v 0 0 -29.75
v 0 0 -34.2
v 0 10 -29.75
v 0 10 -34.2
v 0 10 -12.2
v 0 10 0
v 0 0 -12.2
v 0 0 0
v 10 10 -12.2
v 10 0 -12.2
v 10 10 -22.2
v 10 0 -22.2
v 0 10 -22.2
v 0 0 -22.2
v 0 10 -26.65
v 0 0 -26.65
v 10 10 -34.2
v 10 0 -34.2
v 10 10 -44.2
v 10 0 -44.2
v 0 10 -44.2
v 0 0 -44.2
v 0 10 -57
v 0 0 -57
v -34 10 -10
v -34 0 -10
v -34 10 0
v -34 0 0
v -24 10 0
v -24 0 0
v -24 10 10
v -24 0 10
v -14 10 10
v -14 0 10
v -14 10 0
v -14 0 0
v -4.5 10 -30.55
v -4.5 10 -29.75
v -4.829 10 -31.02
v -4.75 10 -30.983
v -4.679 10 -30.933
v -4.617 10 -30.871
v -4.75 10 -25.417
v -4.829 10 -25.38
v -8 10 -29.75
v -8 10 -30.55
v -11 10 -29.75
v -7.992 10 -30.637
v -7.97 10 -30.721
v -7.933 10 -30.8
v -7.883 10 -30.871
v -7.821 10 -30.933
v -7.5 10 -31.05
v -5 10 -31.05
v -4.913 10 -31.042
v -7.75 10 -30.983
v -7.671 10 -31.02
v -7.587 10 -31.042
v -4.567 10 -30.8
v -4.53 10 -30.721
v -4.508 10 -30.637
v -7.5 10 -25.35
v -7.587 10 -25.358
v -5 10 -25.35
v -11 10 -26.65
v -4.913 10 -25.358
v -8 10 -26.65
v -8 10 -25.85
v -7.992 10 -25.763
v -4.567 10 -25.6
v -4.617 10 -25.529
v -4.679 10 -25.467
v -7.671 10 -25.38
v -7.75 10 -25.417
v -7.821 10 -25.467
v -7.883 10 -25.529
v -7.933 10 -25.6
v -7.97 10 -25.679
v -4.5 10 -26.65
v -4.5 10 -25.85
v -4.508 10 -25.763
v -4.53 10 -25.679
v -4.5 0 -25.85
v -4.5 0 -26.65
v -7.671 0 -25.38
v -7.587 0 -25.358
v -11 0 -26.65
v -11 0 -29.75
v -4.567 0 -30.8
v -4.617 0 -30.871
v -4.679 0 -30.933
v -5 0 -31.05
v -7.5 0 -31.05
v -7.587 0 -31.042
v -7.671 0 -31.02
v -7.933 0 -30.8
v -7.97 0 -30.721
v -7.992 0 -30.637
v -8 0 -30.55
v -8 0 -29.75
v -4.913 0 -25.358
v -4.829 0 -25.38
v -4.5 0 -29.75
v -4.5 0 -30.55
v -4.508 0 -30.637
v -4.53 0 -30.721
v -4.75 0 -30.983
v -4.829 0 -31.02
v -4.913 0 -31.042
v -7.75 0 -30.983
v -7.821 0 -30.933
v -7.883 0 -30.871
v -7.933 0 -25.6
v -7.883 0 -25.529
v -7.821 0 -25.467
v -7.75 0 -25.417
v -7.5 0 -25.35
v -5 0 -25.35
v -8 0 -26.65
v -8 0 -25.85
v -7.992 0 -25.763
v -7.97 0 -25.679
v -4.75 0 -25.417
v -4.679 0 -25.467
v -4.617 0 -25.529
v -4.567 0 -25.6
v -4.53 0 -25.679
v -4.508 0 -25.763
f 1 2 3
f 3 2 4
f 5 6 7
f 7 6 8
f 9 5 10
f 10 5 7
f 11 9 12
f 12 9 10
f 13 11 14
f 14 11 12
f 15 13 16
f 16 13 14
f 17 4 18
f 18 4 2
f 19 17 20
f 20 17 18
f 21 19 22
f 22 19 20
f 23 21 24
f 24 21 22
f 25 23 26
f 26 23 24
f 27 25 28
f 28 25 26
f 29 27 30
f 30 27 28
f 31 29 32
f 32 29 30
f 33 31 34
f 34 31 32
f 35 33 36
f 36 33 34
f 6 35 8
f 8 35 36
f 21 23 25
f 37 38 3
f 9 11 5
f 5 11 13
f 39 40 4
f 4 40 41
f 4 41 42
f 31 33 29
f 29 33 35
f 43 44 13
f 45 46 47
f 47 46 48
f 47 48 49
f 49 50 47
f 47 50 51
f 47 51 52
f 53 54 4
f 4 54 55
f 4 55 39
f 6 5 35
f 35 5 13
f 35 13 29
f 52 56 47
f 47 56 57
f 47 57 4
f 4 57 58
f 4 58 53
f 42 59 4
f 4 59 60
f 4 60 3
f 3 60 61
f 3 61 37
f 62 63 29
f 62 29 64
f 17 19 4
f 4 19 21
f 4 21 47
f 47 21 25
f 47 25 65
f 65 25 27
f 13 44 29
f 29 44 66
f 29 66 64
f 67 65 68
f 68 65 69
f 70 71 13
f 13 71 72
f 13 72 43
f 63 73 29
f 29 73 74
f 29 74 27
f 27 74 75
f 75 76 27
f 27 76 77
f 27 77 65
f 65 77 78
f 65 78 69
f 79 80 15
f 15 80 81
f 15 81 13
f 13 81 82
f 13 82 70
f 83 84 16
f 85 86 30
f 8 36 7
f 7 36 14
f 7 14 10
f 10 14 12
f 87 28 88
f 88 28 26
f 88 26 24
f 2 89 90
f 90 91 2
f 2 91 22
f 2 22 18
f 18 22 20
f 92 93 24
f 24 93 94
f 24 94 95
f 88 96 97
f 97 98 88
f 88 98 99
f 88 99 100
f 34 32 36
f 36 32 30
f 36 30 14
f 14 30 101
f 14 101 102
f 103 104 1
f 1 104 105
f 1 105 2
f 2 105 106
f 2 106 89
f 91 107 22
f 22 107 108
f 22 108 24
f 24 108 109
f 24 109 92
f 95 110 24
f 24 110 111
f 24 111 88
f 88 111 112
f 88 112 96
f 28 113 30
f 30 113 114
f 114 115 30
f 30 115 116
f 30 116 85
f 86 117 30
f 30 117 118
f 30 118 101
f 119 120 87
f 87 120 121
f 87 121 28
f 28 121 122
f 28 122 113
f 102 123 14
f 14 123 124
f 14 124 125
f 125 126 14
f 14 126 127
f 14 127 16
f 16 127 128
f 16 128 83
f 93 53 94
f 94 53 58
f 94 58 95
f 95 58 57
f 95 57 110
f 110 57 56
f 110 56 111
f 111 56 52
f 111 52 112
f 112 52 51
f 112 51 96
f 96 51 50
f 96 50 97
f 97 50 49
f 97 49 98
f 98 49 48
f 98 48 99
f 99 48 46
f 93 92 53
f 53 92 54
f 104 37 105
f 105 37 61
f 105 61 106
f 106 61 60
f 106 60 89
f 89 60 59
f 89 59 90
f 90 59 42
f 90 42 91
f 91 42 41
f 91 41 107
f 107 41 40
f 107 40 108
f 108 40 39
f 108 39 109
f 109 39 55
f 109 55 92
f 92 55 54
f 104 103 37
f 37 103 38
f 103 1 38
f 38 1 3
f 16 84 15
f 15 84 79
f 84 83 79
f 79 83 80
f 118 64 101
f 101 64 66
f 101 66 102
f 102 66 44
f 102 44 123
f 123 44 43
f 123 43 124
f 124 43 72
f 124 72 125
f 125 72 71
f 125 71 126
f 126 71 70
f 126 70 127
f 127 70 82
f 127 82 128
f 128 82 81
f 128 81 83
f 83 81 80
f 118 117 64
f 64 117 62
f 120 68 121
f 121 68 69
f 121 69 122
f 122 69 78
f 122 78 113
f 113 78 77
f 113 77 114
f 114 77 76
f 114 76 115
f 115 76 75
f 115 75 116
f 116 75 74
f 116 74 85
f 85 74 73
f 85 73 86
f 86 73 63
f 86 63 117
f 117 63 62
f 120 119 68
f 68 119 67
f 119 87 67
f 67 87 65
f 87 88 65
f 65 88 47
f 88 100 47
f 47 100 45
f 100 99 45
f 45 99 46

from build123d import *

# Parameters (mm, degrees)
BOSS_EXTRUDE1_DEPTH = 10
CUT_EXTRUDE1_DEPTH  = 68.119296778


with BuildPart() as part:
    # Sketch1 → Boss-Extrude1 (new body)
    with BuildSketch(Plane(origin=(0, 0, 0), x_dir=(1, 0, 0), z_dir=(0, 1, 0))):
        Polygon((0, 0), (-14, 0), (-14, -10), (-24, -10), (-24, 0), (-34, 0), (-34, 10), (0, 57), (0, 44.2), (10, 44.2), (10, 34.2), (0, 34.2), (0, 22.2), (10, 22.2), (10, 12.2), (0, 12.2), align=None)
    extrude(amount=BOSS_EXTRUDE1_DEPTH)

    # Sketch3 → Cut-Extrude1 (cut, through all)
    with BuildSketch(Plane(origin=(0, 10, 0), x_dir=(1, 0, 0), z_dir=(0, 1, 0))):
        with BuildLine():
            Line((-11, 29.75), (-8, 29.75))
            Line((-8, 29.75), (-8, 30.55))
            ThreePointArc((-8, 30.55), (-7.853553391, 30.903553391), (-7.5, 31.05))
            Line((-7.5, 31.05), (-5, 31.05))
            ThreePointArc((-5, 31.05), (-4.646446609, 30.903553391), (-4.5, 30.55))
            Line((-4.5, 30.55), (-4.5, 29.75))
            Line((-4.5, 29.75), (0, 29.75))
            Line((0, 29.75), (0, 26.65))
            Line((0, 26.65), (-4.5, 26.65))
            Line((-4.5, 26.65), (-4.5, 25.85))
            ThreePointArc((-4.5, 25.85), (-4.646446609, 25.496446609), (-5, 25.35))
            Line((-5, 25.35), (-7.5, 25.35))
            ThreePointArc((-7.5, 25.35), (-7.853553391, 25.496446609), (-8, 25.85))
            Line((-8, 25.85), (-8, 26.65))
            Line((-8, 26.65), (-11, 26.65))
            Line((-11, 26.65), (-11, 29.75))
        make_face()
    extrude(amount=-CUT_EXTRUDE1_DEPTH, mode=Mode.SUBTRACT)


solid = part.part
